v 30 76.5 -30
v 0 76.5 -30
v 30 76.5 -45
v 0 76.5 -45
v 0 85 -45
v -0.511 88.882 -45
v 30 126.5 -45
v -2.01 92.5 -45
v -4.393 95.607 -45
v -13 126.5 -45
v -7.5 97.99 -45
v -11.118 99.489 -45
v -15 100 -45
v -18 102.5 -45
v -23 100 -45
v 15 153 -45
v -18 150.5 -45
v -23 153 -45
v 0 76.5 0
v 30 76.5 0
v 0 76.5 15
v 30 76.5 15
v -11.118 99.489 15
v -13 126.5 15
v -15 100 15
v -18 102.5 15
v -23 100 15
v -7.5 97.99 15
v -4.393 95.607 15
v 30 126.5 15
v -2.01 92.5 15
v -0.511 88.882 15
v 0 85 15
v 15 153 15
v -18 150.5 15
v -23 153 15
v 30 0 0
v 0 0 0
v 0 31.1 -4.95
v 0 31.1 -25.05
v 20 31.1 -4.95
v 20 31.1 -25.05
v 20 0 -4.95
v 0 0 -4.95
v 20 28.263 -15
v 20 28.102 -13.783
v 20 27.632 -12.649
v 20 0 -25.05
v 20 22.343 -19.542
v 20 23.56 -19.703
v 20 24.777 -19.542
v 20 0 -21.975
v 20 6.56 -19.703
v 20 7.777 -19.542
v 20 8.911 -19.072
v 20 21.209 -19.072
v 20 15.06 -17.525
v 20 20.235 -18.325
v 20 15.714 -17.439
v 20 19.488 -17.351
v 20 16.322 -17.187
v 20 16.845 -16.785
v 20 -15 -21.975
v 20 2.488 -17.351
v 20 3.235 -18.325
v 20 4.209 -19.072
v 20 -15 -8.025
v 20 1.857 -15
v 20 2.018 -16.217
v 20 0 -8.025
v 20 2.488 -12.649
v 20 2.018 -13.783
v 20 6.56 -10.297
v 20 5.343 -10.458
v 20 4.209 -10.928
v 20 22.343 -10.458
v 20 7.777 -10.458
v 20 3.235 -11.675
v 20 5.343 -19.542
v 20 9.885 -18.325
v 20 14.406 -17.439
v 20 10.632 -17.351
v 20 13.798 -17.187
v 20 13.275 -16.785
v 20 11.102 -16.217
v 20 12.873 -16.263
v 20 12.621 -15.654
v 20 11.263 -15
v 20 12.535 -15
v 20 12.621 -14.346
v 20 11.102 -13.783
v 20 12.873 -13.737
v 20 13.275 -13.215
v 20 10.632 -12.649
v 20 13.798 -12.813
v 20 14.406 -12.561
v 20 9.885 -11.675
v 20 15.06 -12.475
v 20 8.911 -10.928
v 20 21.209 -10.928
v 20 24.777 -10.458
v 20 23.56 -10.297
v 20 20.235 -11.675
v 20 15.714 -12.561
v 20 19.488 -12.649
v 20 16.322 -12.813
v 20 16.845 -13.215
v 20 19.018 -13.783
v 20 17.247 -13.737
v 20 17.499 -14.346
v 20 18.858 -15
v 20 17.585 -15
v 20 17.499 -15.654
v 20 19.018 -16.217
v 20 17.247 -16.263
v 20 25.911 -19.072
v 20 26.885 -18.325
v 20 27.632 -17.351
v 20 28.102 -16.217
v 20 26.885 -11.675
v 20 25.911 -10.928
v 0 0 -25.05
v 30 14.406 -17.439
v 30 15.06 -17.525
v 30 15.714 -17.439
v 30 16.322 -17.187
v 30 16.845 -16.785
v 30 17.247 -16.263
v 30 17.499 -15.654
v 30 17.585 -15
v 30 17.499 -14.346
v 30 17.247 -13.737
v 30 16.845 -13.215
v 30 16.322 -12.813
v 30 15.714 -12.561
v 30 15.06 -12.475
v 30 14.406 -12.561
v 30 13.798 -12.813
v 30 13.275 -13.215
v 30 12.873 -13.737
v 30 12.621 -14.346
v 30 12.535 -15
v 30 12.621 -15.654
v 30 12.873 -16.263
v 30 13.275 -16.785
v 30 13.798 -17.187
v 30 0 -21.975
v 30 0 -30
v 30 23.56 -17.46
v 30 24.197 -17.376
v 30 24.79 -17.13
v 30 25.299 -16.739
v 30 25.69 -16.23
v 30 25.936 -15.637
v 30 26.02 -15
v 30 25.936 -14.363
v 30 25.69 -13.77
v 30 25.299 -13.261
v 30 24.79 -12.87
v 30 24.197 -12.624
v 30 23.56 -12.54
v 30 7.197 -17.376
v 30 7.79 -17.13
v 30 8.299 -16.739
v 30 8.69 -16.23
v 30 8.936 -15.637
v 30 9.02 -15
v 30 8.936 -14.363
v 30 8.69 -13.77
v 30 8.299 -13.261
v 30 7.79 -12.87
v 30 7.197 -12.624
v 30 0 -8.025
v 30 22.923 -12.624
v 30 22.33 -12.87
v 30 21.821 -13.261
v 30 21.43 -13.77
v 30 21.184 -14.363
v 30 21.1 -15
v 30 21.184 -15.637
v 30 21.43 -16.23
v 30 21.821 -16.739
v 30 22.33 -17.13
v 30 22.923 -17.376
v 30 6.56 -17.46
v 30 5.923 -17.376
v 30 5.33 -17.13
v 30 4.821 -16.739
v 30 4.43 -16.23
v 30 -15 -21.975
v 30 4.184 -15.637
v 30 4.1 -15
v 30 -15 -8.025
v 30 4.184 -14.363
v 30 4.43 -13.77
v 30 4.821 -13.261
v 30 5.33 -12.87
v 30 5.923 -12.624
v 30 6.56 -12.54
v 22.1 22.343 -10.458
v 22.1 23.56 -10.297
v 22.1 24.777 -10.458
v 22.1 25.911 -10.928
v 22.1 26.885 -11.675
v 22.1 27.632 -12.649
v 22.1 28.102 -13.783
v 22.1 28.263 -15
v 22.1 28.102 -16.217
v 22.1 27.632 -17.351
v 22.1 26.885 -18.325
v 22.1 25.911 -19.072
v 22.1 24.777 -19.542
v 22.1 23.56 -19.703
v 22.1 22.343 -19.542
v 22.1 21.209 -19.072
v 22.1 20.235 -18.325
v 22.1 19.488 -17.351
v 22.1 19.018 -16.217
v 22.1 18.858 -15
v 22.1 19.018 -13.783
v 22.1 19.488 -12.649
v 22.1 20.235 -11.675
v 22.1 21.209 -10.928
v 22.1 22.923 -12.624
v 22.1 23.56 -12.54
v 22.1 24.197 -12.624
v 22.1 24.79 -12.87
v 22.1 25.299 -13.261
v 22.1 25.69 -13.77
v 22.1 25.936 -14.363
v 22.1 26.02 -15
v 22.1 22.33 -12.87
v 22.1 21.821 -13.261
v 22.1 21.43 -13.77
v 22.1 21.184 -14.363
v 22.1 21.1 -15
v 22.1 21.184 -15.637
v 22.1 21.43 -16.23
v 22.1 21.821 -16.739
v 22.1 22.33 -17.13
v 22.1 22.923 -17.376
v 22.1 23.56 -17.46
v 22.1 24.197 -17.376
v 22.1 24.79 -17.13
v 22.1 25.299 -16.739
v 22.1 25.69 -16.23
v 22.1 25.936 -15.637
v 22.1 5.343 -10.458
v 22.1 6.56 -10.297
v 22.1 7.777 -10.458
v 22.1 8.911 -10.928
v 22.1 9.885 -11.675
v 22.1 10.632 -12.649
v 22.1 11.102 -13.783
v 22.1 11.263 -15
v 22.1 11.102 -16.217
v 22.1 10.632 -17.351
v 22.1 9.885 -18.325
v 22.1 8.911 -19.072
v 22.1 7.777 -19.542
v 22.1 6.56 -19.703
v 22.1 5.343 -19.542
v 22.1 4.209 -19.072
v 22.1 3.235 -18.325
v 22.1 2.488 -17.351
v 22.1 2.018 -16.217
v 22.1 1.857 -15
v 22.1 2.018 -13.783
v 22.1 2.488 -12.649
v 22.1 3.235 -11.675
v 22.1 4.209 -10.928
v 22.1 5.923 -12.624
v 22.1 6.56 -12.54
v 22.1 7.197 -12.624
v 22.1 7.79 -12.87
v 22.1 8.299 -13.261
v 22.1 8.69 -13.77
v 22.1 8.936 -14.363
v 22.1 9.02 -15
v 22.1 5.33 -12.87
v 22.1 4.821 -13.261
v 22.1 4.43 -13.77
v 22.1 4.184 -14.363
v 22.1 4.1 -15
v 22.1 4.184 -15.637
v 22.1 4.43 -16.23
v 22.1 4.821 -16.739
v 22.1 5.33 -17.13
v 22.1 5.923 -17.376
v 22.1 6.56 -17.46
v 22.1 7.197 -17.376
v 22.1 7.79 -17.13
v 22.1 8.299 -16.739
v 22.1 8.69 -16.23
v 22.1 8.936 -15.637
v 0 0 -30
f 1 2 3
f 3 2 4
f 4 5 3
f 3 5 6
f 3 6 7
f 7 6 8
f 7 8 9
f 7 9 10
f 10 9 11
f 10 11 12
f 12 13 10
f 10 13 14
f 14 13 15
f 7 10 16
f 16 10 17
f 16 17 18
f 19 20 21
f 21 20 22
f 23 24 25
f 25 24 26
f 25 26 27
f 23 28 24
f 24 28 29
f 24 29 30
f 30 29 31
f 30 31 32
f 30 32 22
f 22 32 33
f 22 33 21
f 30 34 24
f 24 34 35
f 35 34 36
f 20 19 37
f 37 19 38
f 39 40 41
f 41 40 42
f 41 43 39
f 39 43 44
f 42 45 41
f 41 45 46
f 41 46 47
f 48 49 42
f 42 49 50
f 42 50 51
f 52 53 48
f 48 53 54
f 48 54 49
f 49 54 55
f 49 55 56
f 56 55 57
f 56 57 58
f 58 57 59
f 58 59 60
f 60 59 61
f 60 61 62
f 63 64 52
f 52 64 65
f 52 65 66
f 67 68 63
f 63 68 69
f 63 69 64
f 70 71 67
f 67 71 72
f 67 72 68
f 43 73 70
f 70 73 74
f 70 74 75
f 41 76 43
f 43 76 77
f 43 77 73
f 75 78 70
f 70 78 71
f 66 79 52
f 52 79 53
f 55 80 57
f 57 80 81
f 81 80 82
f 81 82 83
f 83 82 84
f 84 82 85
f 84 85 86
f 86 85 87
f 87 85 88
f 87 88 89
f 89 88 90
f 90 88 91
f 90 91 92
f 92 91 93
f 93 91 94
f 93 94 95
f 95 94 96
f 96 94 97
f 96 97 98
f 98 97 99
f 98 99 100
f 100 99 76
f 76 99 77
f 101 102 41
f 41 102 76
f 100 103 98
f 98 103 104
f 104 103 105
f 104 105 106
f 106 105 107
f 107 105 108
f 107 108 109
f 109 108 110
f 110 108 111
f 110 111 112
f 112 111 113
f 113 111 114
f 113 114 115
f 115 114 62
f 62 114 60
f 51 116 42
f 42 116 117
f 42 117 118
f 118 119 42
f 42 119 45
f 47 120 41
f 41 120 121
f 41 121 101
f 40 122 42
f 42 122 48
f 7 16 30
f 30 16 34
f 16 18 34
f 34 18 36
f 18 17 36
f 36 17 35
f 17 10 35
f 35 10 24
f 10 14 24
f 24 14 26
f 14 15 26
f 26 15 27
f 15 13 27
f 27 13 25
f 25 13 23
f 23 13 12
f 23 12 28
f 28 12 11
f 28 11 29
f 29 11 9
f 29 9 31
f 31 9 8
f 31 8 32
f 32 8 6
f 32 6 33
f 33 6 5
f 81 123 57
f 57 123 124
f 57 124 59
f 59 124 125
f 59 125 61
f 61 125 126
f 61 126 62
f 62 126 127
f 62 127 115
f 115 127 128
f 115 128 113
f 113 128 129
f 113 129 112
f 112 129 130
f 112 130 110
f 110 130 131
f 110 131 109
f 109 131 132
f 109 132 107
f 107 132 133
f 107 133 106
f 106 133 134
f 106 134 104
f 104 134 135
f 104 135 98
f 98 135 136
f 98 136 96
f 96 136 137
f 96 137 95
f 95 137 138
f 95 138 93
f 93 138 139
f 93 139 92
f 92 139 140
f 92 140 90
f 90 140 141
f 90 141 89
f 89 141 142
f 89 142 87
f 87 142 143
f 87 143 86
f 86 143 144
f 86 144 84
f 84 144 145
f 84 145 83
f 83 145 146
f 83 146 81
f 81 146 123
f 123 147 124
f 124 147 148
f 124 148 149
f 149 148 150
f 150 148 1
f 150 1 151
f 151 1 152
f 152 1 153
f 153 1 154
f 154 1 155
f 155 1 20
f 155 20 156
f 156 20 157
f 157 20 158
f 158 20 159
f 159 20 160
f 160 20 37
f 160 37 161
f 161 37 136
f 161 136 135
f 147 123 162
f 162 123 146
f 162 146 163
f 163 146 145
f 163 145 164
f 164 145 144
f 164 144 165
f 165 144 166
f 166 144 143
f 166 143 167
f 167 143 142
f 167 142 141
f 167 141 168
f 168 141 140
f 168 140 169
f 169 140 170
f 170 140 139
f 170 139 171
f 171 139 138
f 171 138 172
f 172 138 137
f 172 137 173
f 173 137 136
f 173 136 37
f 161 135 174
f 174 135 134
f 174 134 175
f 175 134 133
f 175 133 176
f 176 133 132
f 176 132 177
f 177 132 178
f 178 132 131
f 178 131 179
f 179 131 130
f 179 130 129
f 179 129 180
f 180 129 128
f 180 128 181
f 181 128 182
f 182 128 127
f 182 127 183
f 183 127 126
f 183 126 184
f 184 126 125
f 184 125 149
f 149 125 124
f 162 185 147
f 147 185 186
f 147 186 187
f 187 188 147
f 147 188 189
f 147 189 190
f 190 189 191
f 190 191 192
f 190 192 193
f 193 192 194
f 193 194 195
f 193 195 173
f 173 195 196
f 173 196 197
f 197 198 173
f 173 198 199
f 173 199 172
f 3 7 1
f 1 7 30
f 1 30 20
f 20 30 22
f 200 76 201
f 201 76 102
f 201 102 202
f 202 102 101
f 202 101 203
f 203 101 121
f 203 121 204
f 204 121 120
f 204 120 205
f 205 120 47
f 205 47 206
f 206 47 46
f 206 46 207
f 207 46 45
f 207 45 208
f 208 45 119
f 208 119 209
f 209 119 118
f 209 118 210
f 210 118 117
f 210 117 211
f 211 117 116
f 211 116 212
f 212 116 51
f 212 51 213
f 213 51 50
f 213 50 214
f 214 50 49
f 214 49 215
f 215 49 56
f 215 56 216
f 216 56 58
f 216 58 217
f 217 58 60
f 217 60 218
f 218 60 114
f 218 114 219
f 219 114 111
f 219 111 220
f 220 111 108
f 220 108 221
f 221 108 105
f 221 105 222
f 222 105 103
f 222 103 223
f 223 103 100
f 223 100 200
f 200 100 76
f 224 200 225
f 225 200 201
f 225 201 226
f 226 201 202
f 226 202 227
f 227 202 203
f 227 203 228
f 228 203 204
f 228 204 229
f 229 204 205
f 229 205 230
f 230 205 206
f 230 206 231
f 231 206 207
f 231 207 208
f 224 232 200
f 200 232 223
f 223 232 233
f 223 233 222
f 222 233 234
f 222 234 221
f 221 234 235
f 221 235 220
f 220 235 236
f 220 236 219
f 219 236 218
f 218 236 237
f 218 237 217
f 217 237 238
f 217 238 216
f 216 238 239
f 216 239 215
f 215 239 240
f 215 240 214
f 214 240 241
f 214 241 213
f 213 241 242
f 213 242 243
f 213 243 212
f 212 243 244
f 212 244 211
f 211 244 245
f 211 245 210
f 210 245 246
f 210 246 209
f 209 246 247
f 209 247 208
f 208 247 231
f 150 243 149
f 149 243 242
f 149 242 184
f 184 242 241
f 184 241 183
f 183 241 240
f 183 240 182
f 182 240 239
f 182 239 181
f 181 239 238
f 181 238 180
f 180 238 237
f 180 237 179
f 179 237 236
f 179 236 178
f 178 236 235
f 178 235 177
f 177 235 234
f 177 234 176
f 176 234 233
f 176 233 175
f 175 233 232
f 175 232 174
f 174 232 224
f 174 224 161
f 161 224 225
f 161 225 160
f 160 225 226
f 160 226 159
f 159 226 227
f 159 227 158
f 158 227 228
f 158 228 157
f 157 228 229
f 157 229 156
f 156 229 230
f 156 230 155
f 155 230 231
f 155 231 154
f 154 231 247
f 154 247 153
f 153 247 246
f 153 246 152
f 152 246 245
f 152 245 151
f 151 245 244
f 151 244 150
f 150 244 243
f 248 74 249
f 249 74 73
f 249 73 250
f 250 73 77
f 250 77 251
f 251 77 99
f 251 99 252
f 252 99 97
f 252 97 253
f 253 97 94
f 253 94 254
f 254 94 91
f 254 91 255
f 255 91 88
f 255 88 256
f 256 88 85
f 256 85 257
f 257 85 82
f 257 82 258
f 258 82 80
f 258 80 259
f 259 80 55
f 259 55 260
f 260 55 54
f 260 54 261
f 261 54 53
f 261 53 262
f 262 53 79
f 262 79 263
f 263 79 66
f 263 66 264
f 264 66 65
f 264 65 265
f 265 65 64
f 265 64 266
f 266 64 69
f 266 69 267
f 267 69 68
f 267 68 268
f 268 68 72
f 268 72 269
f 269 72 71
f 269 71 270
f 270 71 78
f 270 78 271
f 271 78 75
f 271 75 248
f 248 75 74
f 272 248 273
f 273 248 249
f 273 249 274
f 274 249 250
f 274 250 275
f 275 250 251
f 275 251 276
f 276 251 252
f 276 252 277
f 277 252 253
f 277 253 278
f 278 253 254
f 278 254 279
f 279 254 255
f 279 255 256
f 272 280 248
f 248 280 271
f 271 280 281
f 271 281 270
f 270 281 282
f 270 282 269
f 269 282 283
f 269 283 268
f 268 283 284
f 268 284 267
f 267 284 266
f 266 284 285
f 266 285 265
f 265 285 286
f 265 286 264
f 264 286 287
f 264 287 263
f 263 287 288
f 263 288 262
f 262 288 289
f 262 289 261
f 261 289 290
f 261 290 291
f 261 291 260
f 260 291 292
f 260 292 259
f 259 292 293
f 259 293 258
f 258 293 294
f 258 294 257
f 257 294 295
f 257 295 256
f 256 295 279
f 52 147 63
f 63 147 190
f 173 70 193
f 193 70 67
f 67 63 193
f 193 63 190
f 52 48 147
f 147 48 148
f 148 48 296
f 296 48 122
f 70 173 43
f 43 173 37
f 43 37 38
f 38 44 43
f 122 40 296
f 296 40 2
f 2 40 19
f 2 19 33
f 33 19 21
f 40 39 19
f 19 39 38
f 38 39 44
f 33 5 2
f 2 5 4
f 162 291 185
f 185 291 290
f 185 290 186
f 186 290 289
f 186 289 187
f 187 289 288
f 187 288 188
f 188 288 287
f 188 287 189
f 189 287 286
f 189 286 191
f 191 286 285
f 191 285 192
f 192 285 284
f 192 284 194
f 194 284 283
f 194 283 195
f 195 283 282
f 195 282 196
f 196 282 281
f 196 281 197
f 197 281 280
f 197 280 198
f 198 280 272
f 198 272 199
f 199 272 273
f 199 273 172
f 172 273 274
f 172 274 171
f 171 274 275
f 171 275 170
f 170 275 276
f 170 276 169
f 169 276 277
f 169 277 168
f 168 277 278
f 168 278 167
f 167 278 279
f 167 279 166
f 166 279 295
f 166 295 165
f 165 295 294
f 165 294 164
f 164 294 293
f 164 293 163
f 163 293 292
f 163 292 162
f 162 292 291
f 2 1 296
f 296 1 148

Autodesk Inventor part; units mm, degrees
ref_plane "YZ Plane" through (0, 0, 0) normal (1, 0, 0) x (0, 1, 0)
ref_plane "XZ Plane" through (0, 0, 0) normal (0, 1, 0) x (-1, 0, 0)
sketch "Sketch1" plane through (0, 0, 0) normal (0, 0, 1) x (1, 0, 0)
  line L0 (0, 0) -> (25, 0)
  line L1 (25, 0) -> (25, 40)
  line L2 (25, 40) -> (0, 40)
  line L3 (0, 40) -> (0, 0)
  dimension "d1" = 25
  dimension "d2" = 40
  dimension "d3" = 25
extrude "Extrusion1" add sketch "Sketch1" against normal blind 30
sketch "Sketch2" plane through (25, 0, 0) normal (1, 0, 0) x (0, 0, -1)
  line L0 (0, 0) -> (30, 0) projected
  circle A0 centre (15, 6.56) radius 2.46
extrude "Extrusion2" cut sketch "Sketch2" against normal blind 30
sketch "Sketch3" plane through (0, 0, 0) normal (-1, 0, 0) x (0, 0, 1)
  line L0 (0, 0) -> (-30, 0) projected
  line L1 (-25.05, 0) -> (-4.95, 0)
  line L2 (-4.95, 0) -> (-4.95, 33.12)
  line L3 (-4.95, 33.12) -> (-25.05, 33.12)
  line L4 (-25.05, 33.12) -> (-25.05, 0)
  dimension "d11" = 20.1
extrude "Extrusion3" cut sketch "Sketch3" against normal blind 20
sketch "Sketch4" plane through (0, 0, 0) normal (0, -1, 0) x (1, 0, 0)
  line L0 (20, -4.95) -> (20, -25.05) projected
  line L1 (20, -15) -> (25, -15)
  line L2 (25, 0) -> (25, -30) projected
  line L3 (20, -8.025) -> (25, -8.025)
  line L4 (25, -8.025) -> (25, -21.975)
  line L5 (25, -21.975) -> (20, -21.975)
  line L6 (20, -21.975) -> (20, -8.025)
  line L7 (20, -8.025) -> (25, -21.975) construction
  line L8 (25, -8.025) -> (20, -21.975) construction
  line L9 (25, -12.54) -> (25, -17.46) projected
  point P0 (0, 0)
  point P1 (22.5, -15)
  dimension "d14" = 13.95
extrude "Extrusion4" add sketch "Sketch4" along normal blind 15
sketch "Sketch5" plane through (20, 0, 0) normal (-1, 0, 0) x (0, 0, 1)
  circle A0 centre (-15, 6.56) radius 2.46 projected
  circle A1 centre (-15, 6.56) radius 4.7025
  circle A2 centre (-15, 6.56) radius 2.46 projected
  circle A3 centre (-15, 6.56) radius 2.46
  point P0 (0, 0)
  dimension "d17" = 9.405
extrude "Extrusion5" cut sketch "Sketch5" against normal blind 2.1
sketch "Sketch6" plane through (25, 0, 0) normal (1, 0, 0) x (0, 0, -1)
  circle A0 centre (15, 6.56) radius 4.7025 projected
  line L0 (15, 6.56) -> (15, 23.56)
  circle A1 centre (15, 23.56) radius 2.46
  point P0 (0, 0)
  dimension "d20" = 17
  dimension "d21" = 4.92
extrude "Extrusion6" cut sketch "Sketch6" against normal blind 10 contours A1
sketch "Sketch7" plane through (20, 0, 0) normal (-1, 0, 0) x (0, 0, 1)
  circle A0 centre (-15, 23.56) radius 2.46 projected
  circle A1 centre (-15, 23.56) radius 4.7025
  point P0 (0, 0)
  dimension "d24" = 9.405
extrude "Extrusion7" cut sketch "Sketch7" against normal blind 2.1
sketch "Sketch9" plane through (25, 0, 0) normal (1, 0, 0) x (0, 0, -1)
  circle A0 centre (15, 6.56) radius 2.46 projected
  circle A1 centre (15, 6.56) radius 2.46
  circle A2 centre (15, 23.56) radius 2.46 projected
  circle A3 centre (15, 23.56) radius 2.46
  line L0 (30, 40) -> (30, 0) projected
  line L1 (30, 0) -> (30, 40)
  line L2 (30, 40) -> (0, 40)
  line L3 (0, 40) -> (0, 0)
  line L4 (0, 0) -> (8.025, 0) projected
  line L5 (21.975, 0) -> (21.975, -15)
  line L6 (21.975, -15) -> (8.025, -15)
  line L7 (8.025, -15) -> (8.025, 0)
  line L8 (0, 0) -> (8.025, 0)
  line L9 (21.975, 0) -> (30, 0)
extrude "Extrusion8" add sketch "Sketch9" along normal blind 5
sketch "Sketch10" plane through (0, 40, 0) normal (0, 1, 0) x (1, 0, 0)
  line L0 (0, 30) -> (30, 30) projected
  line L1 (30, 0) -> (0, 0) projected
  line L2 (0, 30) -> (30, 30)
  line L3 (30, 30) -> (30, 0)
  line L4 (30, 0) -> (0, 0)
  line L5 (0, 0) -> (0, 30)
extrude "Extrusion9" add sketch "Sketch10" along normal blind 30
sketch "Sketch12" plane through (30, 0, 0) normal (1, 0, 0) x (0, 0, -1)
  circle A0 centre (15, 6.56) radius 2.46 projected
  line L0 (15, 6.56) -> (15, 15.06)
  circle A1 centre (15, 15.06) radius 2.525
  point P0 (0, 0)
  dimension "d31" = 8.5
  dimension "d33" = 5.05
extrude "Extrusion10" cut sketch "Sketch12" against normal blind 30 contours A1
sketch "Sketch14" plane through (0, 0, 0) normal (0, 0, 1) x (1, 0, 0)
  line L0 (30, 70) -> (0, 70) projected
  line L1 (0, 70) -> (0, 85)
  line L2 (-15, 100) -> (-23, 100)
  line L3 (30, 0) -> (30, 70) projected
  line L4 (30, 122.5) -> (30, 70)
  arc A0 (0, 85) -> (-15, 100) centre (-15, 85) ccw
  line L5 (30, 105) -> (30, 100)
  line L6 (-23, 153) -> (15, 153)
  line L7 (-18, 150.5) -> (-23, 153)
  line L8 (-18, 102.5) -> (-23, 100)
  line L9 (-18, 102.5) -> (-13, 126.5)
  line L10 (-13, 126.5) -> (-18, 150.5)
  line L11 (30, 126.5) -> (15, 153)
  line L12 (30, 122.5) -> (30, 126.5)
  point P0 (0, 0)
  point P1 (0, 100)
  dimension "d47" = 30
  dimension "d54" = 15
extrude "Extrusion12" add sketch "Sketch14" against normal blind 30
sketch "Sketch15" plane through (0, 0, -25.05) normal (-1, 0, 0) x (0, 0, 1)
  line L0 (0, 33.12) -> (20.1, 33.12) projected
  line L1 (20.1, 33.12) -> (20.1, 0) projected
  line L2 (0, 33.12) -> (20.1, 33.12)
  line L3 (20.1, 33.12) -> (20.1, 31.1)
  line L4 (20.1, 31.1) -> (0, 31.1)
  line L5 (0, 31.1) -> (0, 33.12)
  point P0 (25.05, 0)
  dimension "d57" = 2.02
extrude "Extrusion13" add sketch "Sketch15" against normal blind 20
sketch "Sketch25" plane through (0, 0, 0) normal (0, 0, 1) x (1, 0, 0)
  line L0 (-15, 100) -> (-23, 100) projected
  line L1 (-15, 100) -> (-23, 100)
  line L2 (-23, 100) -> (-18, 102.5) projected
  line L3 (-23, 100) -> (-18, 102.5)
  line L4 (-18, 102.5) -> (-13, 126.5) projected
  line L5 (-18, 102.5) -> (-13, 126.5)
  line L6 (-13, 126.5) -> (-18, 150.5) projected
  line L7 (-13, 126.5) -> (-18, 150.5)
  line L8 (-18, 150.5) -> (-23, 153) projected
  line L9 (-18, 150.5) -> (-23, 153)
  line L10 (-23, 153) -> (15, 153) projected
  line L11 (-23, 153) -> (15, 153)
  line L12 (15, 153) -> (30, 126.5) projected
  line L13 (15, 153) -> (30, 126.5)
  line L14 (30, 126.5) -> (30, 76.5)
  line L15 (30, 0) -> (30, 126.5) projected
  line L16 (30, 76.5) -> (0, 76.5)
  arc A0 (0, 85) -> (-15, 100) centre (-15, 85) ccw projected
  line L17 (0, 76.5) -> (0, 85)
  line L18 (0, 85) -> (0, 0) projected
  arc A1 (0, 85) -> (-15, 100) centre (-15, 85) ccw
  dimension "d90" = 50
extrude "Extrusion14" add sketch "Sketch25" along normal blind 15
ref_plane "Work Plane1" through (0, 0, -15) normal (0, 0, 1) x (1, 0, 0)
mirror "Mirror1" about plane through (0, 0, -15) normal (0, 0, 1) of "Extrusion14"
properties part number "rec_a_48mm_x_60mm"
